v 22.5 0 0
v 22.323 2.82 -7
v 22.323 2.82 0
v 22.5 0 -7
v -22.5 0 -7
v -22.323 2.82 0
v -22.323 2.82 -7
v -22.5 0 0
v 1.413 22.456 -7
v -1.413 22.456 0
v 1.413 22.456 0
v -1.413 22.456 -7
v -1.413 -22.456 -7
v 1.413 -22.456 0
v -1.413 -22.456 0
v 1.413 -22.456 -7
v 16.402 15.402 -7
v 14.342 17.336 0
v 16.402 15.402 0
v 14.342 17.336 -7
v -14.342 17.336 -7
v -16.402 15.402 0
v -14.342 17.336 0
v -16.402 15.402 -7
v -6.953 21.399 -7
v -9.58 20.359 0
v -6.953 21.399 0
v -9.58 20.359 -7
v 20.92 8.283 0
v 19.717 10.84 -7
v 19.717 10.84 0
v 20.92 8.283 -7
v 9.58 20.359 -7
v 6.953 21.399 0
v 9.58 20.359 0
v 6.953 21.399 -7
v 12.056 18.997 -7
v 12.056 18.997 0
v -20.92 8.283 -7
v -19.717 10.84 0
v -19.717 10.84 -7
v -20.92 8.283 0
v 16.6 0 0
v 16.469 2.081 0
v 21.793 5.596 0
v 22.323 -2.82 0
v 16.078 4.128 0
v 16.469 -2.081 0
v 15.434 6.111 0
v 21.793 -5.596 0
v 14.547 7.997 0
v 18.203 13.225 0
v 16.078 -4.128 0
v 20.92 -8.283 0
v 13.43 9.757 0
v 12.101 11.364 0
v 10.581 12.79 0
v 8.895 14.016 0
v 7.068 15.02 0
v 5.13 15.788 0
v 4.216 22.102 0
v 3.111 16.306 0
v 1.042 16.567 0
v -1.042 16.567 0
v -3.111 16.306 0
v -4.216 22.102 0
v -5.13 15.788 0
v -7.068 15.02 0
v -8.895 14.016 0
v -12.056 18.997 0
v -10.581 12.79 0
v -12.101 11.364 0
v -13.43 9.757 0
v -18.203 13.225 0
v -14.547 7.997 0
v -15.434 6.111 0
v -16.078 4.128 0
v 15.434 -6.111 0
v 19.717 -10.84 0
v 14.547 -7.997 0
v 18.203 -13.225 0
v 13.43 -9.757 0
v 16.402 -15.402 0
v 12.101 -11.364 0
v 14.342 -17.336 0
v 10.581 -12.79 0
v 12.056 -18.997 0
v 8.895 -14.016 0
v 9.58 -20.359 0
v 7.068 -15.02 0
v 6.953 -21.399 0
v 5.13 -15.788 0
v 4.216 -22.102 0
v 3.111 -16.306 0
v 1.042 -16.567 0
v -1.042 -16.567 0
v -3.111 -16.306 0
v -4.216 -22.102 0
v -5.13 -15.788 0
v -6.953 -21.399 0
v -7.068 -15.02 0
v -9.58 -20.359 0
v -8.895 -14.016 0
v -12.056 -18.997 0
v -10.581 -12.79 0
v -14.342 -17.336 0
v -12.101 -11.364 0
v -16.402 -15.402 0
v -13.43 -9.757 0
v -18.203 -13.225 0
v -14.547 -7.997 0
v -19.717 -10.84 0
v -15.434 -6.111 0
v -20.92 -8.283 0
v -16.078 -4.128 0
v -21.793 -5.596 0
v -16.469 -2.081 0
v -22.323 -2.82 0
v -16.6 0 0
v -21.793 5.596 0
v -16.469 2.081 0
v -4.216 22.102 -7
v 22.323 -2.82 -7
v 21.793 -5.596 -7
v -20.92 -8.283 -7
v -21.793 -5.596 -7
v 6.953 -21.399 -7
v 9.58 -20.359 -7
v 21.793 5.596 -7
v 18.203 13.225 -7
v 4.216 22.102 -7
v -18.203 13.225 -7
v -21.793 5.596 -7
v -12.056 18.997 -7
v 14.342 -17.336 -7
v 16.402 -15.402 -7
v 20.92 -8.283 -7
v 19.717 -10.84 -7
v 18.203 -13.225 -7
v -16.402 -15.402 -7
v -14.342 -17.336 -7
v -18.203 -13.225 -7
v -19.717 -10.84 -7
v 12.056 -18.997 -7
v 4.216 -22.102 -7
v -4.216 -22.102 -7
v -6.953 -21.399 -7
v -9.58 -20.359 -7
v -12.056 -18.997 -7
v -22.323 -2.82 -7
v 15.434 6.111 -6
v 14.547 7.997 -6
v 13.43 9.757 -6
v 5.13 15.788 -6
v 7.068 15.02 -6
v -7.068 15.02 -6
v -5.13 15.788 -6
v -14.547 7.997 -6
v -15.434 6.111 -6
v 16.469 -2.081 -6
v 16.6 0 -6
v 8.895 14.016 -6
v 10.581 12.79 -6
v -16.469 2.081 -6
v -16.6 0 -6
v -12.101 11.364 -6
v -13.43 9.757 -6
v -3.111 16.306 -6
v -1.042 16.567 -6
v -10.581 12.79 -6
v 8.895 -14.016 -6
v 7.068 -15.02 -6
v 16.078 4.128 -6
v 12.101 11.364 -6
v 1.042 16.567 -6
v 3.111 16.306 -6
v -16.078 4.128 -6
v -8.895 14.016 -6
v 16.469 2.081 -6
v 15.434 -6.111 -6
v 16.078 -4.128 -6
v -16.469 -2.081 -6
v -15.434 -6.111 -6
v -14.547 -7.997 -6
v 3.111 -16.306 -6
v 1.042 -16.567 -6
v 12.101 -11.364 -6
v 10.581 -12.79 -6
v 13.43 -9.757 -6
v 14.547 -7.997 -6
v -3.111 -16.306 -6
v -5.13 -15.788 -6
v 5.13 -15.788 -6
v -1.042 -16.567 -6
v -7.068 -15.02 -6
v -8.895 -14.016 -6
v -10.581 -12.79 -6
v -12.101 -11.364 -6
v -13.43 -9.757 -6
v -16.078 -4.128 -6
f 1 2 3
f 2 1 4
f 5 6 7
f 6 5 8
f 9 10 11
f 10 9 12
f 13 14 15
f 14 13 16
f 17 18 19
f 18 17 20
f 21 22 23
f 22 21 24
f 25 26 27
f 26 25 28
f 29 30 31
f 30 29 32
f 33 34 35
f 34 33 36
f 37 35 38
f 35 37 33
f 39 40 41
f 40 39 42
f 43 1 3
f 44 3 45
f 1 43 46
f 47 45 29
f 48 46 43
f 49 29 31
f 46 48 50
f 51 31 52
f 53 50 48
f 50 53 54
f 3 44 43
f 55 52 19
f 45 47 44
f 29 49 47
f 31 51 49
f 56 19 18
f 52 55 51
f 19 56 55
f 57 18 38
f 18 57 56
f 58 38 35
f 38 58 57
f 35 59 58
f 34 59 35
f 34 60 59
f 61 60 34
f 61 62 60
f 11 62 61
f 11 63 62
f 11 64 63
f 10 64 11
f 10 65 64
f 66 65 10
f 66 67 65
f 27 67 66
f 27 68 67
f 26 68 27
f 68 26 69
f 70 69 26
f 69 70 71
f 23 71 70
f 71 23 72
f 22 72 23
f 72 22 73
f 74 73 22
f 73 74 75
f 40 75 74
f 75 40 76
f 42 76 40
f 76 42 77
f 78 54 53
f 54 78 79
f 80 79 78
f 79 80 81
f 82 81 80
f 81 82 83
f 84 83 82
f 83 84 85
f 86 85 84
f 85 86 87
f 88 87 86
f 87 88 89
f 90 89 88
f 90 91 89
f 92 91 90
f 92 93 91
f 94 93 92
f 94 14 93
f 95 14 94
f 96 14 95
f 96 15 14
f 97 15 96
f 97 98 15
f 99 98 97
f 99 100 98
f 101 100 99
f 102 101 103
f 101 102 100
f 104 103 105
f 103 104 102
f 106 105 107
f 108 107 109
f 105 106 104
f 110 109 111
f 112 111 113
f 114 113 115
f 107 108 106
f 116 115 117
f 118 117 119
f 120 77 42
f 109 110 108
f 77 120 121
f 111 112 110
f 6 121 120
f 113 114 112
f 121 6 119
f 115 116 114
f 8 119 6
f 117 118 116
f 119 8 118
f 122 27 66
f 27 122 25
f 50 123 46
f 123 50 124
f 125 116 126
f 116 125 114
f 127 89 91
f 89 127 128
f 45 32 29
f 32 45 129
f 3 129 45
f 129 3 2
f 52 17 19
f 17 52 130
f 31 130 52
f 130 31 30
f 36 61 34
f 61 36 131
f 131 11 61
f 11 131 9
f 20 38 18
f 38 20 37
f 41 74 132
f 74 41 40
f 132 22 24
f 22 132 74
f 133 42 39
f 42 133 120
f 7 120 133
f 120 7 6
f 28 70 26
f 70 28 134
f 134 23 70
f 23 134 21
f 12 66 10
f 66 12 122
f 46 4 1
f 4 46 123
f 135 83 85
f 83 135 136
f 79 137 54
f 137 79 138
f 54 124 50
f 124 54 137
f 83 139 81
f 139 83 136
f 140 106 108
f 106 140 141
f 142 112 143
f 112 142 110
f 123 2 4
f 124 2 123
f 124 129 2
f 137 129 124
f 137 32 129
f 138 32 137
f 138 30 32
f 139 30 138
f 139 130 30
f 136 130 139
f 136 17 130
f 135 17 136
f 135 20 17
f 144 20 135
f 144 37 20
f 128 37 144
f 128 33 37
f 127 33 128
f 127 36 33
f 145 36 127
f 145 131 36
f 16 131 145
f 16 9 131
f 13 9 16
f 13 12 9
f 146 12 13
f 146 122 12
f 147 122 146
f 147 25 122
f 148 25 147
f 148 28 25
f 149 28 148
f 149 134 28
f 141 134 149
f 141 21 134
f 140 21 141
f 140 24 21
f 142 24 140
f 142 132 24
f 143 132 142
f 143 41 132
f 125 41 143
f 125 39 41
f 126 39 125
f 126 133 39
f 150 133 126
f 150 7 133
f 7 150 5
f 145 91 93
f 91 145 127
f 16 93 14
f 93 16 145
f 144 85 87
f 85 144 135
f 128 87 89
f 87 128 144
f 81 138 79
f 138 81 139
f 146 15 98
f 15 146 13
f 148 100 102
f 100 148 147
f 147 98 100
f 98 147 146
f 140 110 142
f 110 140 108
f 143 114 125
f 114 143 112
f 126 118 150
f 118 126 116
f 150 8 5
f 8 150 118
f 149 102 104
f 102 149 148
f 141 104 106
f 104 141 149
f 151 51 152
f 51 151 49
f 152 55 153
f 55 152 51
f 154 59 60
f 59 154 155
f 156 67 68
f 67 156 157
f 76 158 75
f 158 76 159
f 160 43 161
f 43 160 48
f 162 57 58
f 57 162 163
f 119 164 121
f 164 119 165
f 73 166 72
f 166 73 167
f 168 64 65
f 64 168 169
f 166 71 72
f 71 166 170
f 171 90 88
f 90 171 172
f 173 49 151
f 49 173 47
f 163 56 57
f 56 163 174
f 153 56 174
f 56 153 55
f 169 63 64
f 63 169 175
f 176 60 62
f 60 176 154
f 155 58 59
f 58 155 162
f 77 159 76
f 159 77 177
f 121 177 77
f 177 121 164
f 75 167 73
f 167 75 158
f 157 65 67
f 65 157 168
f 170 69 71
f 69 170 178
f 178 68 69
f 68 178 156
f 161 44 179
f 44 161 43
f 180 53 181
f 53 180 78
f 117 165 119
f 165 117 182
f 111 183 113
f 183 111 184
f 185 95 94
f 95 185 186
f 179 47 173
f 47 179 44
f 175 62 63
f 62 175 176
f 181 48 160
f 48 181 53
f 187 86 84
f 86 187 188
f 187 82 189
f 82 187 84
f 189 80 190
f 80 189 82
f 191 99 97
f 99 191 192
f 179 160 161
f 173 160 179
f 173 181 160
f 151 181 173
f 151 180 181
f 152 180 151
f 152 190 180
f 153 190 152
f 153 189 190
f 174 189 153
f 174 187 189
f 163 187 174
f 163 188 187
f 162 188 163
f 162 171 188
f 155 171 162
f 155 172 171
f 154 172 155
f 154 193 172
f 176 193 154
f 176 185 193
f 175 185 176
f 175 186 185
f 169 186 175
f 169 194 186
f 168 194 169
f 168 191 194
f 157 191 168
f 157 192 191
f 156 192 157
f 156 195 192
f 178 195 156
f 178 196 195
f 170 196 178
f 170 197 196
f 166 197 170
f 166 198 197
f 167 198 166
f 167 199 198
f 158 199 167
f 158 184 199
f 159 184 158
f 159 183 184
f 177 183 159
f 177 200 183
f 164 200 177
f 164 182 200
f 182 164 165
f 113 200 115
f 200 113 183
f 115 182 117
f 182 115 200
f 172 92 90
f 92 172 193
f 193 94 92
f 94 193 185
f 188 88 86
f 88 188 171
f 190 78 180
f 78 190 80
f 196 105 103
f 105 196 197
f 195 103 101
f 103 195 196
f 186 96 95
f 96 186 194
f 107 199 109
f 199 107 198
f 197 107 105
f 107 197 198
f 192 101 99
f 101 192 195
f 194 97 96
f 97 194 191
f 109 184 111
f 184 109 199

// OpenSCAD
$fn = 50;


difference() {
	union() {
		translate(v = [0, 0, -7.0000000000]) {
			cylinder(h = 7, r = 22.5000000000);
		}
	}
	union() {
		#translate(v = [0, 0, -6.0000000000]) {
			cylinder(h = 6, r = 16.6000000000);
		}
	}
}
